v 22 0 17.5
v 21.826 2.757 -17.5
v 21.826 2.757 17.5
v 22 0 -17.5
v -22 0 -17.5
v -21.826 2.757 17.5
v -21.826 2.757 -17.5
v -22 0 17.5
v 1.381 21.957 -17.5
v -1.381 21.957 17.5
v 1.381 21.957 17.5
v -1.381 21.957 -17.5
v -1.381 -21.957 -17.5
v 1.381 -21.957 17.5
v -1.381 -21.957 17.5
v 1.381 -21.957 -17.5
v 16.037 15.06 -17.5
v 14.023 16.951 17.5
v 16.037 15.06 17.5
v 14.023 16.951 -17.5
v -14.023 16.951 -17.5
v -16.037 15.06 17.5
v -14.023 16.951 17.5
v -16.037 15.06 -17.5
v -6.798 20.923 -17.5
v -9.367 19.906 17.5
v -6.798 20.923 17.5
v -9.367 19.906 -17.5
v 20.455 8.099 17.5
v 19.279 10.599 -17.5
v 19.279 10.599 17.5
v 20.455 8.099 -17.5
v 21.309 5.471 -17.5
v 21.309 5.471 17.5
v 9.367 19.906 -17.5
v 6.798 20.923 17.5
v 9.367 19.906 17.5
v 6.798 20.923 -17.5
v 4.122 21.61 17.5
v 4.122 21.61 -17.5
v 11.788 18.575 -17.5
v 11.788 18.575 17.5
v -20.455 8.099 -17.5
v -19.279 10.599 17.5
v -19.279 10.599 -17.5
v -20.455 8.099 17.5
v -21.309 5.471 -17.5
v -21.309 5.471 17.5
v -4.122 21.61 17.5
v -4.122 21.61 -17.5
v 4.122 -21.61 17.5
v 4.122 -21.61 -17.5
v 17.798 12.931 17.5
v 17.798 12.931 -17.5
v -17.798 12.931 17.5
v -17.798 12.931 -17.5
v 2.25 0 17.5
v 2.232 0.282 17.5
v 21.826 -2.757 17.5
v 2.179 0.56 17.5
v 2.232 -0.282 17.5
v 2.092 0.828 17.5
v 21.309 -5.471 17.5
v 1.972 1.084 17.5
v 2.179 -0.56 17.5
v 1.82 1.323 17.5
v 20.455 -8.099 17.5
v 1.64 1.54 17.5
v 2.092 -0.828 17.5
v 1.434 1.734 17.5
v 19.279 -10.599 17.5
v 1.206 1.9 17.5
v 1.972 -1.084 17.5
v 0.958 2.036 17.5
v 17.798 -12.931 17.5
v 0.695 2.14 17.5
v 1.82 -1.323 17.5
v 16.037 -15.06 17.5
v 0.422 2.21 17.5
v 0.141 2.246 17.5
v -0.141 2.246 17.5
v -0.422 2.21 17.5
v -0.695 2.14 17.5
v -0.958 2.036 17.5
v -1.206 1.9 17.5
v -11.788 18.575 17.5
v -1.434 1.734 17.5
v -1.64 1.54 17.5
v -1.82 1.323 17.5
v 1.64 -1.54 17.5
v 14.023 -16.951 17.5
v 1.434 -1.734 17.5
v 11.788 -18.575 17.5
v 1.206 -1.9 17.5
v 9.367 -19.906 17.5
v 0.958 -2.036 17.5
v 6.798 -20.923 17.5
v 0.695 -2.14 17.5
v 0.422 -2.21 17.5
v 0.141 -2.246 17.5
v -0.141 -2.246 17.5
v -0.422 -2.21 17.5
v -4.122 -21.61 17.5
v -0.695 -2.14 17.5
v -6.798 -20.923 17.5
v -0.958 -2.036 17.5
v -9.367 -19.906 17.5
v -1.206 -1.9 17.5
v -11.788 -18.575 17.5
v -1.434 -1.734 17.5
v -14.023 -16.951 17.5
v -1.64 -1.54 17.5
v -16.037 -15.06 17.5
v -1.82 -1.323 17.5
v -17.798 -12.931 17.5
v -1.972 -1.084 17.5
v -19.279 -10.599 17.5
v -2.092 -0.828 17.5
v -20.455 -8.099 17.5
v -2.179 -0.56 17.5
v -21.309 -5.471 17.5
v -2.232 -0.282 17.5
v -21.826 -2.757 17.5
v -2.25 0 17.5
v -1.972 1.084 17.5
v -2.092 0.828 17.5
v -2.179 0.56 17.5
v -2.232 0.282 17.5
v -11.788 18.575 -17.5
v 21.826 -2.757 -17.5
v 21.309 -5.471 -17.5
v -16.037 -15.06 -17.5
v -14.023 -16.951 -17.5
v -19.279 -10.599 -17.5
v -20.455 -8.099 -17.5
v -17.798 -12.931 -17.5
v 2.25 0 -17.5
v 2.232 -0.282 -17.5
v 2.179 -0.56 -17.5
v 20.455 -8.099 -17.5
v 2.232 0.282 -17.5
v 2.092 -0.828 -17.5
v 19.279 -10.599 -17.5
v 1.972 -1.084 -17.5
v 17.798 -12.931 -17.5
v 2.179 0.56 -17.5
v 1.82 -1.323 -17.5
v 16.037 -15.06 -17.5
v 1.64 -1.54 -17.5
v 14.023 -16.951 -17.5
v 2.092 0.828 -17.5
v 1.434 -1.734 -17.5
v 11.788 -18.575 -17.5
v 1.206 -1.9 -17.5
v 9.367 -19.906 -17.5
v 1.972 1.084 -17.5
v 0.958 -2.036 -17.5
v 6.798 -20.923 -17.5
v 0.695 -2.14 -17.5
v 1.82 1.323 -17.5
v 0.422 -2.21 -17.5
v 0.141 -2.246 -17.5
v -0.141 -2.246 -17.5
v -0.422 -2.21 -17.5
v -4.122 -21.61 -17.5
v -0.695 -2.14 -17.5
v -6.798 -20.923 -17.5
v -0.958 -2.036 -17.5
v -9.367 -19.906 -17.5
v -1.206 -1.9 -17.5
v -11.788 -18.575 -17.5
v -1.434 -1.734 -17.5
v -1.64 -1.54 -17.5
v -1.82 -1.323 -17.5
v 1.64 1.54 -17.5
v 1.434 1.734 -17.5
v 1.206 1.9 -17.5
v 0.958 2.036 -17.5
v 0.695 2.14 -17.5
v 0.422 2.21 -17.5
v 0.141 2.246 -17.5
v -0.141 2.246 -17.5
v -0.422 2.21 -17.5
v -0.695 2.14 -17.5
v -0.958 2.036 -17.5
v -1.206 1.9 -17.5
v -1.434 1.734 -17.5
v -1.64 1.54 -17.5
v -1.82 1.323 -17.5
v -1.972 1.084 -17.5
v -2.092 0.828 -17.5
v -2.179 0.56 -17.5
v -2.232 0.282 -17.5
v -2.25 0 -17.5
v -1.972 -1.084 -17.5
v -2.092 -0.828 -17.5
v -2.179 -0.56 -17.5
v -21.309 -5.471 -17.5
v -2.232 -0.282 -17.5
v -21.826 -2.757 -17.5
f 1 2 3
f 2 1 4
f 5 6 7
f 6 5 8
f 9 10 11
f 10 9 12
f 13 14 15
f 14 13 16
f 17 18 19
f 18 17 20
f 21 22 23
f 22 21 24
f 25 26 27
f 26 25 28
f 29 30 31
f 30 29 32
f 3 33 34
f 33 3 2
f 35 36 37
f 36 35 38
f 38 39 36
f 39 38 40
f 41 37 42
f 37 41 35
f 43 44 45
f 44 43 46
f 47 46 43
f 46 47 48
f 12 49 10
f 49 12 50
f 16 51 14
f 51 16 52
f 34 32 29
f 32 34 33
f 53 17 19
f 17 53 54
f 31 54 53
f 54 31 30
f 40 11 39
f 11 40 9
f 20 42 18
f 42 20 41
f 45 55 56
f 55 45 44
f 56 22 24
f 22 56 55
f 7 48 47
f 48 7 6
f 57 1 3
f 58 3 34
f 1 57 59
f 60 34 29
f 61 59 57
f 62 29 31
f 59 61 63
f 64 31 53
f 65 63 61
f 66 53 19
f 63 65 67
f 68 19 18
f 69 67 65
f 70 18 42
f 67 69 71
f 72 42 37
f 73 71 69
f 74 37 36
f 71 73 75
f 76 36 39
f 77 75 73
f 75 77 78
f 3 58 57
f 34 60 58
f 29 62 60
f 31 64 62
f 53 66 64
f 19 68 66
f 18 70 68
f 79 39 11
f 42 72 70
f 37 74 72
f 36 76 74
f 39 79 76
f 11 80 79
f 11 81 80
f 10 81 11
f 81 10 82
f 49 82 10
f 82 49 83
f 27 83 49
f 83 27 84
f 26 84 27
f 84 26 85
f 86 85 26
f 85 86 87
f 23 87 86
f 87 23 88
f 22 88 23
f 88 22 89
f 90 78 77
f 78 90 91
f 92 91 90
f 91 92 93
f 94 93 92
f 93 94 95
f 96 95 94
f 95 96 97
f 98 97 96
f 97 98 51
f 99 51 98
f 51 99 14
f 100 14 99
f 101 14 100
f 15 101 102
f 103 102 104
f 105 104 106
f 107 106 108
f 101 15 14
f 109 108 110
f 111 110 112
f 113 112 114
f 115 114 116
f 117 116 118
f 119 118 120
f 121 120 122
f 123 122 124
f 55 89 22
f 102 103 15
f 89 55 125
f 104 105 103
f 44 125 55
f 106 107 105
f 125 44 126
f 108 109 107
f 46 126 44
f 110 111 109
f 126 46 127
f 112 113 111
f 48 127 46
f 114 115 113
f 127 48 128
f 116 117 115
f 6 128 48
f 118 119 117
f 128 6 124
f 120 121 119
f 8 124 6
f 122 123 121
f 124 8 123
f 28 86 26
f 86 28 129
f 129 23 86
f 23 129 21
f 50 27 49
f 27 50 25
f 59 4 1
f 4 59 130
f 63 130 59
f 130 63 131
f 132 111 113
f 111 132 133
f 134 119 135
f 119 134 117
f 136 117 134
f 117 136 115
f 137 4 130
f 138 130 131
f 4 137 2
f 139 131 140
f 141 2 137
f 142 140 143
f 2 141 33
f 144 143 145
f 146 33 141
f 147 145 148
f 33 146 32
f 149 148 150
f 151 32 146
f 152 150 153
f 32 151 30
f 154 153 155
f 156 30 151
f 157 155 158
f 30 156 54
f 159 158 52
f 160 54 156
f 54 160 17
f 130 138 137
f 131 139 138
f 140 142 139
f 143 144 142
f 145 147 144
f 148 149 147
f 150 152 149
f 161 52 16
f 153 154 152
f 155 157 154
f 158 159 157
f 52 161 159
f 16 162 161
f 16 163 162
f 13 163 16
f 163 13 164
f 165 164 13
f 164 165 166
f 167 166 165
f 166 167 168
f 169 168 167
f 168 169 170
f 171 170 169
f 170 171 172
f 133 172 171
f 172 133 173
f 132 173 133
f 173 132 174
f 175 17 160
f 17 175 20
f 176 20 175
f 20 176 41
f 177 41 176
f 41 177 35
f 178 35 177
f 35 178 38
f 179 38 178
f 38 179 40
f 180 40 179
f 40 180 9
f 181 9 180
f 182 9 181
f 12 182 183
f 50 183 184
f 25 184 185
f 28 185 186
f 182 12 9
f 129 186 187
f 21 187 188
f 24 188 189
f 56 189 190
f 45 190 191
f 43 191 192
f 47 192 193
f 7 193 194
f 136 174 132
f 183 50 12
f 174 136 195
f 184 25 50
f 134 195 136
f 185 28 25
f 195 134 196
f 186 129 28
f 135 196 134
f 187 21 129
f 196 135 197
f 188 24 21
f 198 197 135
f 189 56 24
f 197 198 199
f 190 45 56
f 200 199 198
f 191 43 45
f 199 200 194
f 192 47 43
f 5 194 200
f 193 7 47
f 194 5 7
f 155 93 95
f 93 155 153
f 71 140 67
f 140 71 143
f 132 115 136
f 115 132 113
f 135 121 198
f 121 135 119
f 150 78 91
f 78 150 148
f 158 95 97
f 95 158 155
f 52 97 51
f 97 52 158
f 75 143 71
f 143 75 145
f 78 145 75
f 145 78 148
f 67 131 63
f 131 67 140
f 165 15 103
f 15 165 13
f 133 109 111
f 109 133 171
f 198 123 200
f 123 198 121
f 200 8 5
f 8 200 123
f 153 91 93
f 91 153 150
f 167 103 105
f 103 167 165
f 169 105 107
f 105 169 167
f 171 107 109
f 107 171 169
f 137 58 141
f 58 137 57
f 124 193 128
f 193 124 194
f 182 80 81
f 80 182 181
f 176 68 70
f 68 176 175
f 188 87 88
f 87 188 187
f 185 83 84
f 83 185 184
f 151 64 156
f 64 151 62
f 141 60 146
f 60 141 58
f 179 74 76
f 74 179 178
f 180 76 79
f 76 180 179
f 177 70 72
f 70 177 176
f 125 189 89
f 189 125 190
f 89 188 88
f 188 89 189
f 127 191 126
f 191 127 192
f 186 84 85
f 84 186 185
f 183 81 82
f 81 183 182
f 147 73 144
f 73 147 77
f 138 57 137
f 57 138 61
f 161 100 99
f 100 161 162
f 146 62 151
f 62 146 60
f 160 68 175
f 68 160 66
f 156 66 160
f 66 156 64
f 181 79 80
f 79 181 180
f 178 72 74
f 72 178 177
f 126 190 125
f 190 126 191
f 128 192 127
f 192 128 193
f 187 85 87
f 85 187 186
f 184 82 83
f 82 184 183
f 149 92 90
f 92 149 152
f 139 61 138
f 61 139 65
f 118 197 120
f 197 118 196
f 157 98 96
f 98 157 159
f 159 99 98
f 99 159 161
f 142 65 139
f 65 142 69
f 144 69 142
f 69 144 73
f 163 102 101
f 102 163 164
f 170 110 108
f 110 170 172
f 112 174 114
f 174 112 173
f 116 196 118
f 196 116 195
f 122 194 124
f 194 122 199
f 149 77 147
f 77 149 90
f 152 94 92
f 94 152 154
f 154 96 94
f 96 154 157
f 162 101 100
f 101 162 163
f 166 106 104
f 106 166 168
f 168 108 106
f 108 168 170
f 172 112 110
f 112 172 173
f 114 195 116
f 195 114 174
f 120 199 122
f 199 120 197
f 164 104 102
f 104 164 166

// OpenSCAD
$fn = 50;


difference() {
	union() {
		translate(v = [0, 0, -17.5000000000]) {
			cylinder(h = 35, r = 22.0000000000);
		}
	}
	union() {
		translate(v = [0, 0, -100.0000000000]) {
			cylinder(h = 200, r = 2.2500000000);
		}
	}
}
